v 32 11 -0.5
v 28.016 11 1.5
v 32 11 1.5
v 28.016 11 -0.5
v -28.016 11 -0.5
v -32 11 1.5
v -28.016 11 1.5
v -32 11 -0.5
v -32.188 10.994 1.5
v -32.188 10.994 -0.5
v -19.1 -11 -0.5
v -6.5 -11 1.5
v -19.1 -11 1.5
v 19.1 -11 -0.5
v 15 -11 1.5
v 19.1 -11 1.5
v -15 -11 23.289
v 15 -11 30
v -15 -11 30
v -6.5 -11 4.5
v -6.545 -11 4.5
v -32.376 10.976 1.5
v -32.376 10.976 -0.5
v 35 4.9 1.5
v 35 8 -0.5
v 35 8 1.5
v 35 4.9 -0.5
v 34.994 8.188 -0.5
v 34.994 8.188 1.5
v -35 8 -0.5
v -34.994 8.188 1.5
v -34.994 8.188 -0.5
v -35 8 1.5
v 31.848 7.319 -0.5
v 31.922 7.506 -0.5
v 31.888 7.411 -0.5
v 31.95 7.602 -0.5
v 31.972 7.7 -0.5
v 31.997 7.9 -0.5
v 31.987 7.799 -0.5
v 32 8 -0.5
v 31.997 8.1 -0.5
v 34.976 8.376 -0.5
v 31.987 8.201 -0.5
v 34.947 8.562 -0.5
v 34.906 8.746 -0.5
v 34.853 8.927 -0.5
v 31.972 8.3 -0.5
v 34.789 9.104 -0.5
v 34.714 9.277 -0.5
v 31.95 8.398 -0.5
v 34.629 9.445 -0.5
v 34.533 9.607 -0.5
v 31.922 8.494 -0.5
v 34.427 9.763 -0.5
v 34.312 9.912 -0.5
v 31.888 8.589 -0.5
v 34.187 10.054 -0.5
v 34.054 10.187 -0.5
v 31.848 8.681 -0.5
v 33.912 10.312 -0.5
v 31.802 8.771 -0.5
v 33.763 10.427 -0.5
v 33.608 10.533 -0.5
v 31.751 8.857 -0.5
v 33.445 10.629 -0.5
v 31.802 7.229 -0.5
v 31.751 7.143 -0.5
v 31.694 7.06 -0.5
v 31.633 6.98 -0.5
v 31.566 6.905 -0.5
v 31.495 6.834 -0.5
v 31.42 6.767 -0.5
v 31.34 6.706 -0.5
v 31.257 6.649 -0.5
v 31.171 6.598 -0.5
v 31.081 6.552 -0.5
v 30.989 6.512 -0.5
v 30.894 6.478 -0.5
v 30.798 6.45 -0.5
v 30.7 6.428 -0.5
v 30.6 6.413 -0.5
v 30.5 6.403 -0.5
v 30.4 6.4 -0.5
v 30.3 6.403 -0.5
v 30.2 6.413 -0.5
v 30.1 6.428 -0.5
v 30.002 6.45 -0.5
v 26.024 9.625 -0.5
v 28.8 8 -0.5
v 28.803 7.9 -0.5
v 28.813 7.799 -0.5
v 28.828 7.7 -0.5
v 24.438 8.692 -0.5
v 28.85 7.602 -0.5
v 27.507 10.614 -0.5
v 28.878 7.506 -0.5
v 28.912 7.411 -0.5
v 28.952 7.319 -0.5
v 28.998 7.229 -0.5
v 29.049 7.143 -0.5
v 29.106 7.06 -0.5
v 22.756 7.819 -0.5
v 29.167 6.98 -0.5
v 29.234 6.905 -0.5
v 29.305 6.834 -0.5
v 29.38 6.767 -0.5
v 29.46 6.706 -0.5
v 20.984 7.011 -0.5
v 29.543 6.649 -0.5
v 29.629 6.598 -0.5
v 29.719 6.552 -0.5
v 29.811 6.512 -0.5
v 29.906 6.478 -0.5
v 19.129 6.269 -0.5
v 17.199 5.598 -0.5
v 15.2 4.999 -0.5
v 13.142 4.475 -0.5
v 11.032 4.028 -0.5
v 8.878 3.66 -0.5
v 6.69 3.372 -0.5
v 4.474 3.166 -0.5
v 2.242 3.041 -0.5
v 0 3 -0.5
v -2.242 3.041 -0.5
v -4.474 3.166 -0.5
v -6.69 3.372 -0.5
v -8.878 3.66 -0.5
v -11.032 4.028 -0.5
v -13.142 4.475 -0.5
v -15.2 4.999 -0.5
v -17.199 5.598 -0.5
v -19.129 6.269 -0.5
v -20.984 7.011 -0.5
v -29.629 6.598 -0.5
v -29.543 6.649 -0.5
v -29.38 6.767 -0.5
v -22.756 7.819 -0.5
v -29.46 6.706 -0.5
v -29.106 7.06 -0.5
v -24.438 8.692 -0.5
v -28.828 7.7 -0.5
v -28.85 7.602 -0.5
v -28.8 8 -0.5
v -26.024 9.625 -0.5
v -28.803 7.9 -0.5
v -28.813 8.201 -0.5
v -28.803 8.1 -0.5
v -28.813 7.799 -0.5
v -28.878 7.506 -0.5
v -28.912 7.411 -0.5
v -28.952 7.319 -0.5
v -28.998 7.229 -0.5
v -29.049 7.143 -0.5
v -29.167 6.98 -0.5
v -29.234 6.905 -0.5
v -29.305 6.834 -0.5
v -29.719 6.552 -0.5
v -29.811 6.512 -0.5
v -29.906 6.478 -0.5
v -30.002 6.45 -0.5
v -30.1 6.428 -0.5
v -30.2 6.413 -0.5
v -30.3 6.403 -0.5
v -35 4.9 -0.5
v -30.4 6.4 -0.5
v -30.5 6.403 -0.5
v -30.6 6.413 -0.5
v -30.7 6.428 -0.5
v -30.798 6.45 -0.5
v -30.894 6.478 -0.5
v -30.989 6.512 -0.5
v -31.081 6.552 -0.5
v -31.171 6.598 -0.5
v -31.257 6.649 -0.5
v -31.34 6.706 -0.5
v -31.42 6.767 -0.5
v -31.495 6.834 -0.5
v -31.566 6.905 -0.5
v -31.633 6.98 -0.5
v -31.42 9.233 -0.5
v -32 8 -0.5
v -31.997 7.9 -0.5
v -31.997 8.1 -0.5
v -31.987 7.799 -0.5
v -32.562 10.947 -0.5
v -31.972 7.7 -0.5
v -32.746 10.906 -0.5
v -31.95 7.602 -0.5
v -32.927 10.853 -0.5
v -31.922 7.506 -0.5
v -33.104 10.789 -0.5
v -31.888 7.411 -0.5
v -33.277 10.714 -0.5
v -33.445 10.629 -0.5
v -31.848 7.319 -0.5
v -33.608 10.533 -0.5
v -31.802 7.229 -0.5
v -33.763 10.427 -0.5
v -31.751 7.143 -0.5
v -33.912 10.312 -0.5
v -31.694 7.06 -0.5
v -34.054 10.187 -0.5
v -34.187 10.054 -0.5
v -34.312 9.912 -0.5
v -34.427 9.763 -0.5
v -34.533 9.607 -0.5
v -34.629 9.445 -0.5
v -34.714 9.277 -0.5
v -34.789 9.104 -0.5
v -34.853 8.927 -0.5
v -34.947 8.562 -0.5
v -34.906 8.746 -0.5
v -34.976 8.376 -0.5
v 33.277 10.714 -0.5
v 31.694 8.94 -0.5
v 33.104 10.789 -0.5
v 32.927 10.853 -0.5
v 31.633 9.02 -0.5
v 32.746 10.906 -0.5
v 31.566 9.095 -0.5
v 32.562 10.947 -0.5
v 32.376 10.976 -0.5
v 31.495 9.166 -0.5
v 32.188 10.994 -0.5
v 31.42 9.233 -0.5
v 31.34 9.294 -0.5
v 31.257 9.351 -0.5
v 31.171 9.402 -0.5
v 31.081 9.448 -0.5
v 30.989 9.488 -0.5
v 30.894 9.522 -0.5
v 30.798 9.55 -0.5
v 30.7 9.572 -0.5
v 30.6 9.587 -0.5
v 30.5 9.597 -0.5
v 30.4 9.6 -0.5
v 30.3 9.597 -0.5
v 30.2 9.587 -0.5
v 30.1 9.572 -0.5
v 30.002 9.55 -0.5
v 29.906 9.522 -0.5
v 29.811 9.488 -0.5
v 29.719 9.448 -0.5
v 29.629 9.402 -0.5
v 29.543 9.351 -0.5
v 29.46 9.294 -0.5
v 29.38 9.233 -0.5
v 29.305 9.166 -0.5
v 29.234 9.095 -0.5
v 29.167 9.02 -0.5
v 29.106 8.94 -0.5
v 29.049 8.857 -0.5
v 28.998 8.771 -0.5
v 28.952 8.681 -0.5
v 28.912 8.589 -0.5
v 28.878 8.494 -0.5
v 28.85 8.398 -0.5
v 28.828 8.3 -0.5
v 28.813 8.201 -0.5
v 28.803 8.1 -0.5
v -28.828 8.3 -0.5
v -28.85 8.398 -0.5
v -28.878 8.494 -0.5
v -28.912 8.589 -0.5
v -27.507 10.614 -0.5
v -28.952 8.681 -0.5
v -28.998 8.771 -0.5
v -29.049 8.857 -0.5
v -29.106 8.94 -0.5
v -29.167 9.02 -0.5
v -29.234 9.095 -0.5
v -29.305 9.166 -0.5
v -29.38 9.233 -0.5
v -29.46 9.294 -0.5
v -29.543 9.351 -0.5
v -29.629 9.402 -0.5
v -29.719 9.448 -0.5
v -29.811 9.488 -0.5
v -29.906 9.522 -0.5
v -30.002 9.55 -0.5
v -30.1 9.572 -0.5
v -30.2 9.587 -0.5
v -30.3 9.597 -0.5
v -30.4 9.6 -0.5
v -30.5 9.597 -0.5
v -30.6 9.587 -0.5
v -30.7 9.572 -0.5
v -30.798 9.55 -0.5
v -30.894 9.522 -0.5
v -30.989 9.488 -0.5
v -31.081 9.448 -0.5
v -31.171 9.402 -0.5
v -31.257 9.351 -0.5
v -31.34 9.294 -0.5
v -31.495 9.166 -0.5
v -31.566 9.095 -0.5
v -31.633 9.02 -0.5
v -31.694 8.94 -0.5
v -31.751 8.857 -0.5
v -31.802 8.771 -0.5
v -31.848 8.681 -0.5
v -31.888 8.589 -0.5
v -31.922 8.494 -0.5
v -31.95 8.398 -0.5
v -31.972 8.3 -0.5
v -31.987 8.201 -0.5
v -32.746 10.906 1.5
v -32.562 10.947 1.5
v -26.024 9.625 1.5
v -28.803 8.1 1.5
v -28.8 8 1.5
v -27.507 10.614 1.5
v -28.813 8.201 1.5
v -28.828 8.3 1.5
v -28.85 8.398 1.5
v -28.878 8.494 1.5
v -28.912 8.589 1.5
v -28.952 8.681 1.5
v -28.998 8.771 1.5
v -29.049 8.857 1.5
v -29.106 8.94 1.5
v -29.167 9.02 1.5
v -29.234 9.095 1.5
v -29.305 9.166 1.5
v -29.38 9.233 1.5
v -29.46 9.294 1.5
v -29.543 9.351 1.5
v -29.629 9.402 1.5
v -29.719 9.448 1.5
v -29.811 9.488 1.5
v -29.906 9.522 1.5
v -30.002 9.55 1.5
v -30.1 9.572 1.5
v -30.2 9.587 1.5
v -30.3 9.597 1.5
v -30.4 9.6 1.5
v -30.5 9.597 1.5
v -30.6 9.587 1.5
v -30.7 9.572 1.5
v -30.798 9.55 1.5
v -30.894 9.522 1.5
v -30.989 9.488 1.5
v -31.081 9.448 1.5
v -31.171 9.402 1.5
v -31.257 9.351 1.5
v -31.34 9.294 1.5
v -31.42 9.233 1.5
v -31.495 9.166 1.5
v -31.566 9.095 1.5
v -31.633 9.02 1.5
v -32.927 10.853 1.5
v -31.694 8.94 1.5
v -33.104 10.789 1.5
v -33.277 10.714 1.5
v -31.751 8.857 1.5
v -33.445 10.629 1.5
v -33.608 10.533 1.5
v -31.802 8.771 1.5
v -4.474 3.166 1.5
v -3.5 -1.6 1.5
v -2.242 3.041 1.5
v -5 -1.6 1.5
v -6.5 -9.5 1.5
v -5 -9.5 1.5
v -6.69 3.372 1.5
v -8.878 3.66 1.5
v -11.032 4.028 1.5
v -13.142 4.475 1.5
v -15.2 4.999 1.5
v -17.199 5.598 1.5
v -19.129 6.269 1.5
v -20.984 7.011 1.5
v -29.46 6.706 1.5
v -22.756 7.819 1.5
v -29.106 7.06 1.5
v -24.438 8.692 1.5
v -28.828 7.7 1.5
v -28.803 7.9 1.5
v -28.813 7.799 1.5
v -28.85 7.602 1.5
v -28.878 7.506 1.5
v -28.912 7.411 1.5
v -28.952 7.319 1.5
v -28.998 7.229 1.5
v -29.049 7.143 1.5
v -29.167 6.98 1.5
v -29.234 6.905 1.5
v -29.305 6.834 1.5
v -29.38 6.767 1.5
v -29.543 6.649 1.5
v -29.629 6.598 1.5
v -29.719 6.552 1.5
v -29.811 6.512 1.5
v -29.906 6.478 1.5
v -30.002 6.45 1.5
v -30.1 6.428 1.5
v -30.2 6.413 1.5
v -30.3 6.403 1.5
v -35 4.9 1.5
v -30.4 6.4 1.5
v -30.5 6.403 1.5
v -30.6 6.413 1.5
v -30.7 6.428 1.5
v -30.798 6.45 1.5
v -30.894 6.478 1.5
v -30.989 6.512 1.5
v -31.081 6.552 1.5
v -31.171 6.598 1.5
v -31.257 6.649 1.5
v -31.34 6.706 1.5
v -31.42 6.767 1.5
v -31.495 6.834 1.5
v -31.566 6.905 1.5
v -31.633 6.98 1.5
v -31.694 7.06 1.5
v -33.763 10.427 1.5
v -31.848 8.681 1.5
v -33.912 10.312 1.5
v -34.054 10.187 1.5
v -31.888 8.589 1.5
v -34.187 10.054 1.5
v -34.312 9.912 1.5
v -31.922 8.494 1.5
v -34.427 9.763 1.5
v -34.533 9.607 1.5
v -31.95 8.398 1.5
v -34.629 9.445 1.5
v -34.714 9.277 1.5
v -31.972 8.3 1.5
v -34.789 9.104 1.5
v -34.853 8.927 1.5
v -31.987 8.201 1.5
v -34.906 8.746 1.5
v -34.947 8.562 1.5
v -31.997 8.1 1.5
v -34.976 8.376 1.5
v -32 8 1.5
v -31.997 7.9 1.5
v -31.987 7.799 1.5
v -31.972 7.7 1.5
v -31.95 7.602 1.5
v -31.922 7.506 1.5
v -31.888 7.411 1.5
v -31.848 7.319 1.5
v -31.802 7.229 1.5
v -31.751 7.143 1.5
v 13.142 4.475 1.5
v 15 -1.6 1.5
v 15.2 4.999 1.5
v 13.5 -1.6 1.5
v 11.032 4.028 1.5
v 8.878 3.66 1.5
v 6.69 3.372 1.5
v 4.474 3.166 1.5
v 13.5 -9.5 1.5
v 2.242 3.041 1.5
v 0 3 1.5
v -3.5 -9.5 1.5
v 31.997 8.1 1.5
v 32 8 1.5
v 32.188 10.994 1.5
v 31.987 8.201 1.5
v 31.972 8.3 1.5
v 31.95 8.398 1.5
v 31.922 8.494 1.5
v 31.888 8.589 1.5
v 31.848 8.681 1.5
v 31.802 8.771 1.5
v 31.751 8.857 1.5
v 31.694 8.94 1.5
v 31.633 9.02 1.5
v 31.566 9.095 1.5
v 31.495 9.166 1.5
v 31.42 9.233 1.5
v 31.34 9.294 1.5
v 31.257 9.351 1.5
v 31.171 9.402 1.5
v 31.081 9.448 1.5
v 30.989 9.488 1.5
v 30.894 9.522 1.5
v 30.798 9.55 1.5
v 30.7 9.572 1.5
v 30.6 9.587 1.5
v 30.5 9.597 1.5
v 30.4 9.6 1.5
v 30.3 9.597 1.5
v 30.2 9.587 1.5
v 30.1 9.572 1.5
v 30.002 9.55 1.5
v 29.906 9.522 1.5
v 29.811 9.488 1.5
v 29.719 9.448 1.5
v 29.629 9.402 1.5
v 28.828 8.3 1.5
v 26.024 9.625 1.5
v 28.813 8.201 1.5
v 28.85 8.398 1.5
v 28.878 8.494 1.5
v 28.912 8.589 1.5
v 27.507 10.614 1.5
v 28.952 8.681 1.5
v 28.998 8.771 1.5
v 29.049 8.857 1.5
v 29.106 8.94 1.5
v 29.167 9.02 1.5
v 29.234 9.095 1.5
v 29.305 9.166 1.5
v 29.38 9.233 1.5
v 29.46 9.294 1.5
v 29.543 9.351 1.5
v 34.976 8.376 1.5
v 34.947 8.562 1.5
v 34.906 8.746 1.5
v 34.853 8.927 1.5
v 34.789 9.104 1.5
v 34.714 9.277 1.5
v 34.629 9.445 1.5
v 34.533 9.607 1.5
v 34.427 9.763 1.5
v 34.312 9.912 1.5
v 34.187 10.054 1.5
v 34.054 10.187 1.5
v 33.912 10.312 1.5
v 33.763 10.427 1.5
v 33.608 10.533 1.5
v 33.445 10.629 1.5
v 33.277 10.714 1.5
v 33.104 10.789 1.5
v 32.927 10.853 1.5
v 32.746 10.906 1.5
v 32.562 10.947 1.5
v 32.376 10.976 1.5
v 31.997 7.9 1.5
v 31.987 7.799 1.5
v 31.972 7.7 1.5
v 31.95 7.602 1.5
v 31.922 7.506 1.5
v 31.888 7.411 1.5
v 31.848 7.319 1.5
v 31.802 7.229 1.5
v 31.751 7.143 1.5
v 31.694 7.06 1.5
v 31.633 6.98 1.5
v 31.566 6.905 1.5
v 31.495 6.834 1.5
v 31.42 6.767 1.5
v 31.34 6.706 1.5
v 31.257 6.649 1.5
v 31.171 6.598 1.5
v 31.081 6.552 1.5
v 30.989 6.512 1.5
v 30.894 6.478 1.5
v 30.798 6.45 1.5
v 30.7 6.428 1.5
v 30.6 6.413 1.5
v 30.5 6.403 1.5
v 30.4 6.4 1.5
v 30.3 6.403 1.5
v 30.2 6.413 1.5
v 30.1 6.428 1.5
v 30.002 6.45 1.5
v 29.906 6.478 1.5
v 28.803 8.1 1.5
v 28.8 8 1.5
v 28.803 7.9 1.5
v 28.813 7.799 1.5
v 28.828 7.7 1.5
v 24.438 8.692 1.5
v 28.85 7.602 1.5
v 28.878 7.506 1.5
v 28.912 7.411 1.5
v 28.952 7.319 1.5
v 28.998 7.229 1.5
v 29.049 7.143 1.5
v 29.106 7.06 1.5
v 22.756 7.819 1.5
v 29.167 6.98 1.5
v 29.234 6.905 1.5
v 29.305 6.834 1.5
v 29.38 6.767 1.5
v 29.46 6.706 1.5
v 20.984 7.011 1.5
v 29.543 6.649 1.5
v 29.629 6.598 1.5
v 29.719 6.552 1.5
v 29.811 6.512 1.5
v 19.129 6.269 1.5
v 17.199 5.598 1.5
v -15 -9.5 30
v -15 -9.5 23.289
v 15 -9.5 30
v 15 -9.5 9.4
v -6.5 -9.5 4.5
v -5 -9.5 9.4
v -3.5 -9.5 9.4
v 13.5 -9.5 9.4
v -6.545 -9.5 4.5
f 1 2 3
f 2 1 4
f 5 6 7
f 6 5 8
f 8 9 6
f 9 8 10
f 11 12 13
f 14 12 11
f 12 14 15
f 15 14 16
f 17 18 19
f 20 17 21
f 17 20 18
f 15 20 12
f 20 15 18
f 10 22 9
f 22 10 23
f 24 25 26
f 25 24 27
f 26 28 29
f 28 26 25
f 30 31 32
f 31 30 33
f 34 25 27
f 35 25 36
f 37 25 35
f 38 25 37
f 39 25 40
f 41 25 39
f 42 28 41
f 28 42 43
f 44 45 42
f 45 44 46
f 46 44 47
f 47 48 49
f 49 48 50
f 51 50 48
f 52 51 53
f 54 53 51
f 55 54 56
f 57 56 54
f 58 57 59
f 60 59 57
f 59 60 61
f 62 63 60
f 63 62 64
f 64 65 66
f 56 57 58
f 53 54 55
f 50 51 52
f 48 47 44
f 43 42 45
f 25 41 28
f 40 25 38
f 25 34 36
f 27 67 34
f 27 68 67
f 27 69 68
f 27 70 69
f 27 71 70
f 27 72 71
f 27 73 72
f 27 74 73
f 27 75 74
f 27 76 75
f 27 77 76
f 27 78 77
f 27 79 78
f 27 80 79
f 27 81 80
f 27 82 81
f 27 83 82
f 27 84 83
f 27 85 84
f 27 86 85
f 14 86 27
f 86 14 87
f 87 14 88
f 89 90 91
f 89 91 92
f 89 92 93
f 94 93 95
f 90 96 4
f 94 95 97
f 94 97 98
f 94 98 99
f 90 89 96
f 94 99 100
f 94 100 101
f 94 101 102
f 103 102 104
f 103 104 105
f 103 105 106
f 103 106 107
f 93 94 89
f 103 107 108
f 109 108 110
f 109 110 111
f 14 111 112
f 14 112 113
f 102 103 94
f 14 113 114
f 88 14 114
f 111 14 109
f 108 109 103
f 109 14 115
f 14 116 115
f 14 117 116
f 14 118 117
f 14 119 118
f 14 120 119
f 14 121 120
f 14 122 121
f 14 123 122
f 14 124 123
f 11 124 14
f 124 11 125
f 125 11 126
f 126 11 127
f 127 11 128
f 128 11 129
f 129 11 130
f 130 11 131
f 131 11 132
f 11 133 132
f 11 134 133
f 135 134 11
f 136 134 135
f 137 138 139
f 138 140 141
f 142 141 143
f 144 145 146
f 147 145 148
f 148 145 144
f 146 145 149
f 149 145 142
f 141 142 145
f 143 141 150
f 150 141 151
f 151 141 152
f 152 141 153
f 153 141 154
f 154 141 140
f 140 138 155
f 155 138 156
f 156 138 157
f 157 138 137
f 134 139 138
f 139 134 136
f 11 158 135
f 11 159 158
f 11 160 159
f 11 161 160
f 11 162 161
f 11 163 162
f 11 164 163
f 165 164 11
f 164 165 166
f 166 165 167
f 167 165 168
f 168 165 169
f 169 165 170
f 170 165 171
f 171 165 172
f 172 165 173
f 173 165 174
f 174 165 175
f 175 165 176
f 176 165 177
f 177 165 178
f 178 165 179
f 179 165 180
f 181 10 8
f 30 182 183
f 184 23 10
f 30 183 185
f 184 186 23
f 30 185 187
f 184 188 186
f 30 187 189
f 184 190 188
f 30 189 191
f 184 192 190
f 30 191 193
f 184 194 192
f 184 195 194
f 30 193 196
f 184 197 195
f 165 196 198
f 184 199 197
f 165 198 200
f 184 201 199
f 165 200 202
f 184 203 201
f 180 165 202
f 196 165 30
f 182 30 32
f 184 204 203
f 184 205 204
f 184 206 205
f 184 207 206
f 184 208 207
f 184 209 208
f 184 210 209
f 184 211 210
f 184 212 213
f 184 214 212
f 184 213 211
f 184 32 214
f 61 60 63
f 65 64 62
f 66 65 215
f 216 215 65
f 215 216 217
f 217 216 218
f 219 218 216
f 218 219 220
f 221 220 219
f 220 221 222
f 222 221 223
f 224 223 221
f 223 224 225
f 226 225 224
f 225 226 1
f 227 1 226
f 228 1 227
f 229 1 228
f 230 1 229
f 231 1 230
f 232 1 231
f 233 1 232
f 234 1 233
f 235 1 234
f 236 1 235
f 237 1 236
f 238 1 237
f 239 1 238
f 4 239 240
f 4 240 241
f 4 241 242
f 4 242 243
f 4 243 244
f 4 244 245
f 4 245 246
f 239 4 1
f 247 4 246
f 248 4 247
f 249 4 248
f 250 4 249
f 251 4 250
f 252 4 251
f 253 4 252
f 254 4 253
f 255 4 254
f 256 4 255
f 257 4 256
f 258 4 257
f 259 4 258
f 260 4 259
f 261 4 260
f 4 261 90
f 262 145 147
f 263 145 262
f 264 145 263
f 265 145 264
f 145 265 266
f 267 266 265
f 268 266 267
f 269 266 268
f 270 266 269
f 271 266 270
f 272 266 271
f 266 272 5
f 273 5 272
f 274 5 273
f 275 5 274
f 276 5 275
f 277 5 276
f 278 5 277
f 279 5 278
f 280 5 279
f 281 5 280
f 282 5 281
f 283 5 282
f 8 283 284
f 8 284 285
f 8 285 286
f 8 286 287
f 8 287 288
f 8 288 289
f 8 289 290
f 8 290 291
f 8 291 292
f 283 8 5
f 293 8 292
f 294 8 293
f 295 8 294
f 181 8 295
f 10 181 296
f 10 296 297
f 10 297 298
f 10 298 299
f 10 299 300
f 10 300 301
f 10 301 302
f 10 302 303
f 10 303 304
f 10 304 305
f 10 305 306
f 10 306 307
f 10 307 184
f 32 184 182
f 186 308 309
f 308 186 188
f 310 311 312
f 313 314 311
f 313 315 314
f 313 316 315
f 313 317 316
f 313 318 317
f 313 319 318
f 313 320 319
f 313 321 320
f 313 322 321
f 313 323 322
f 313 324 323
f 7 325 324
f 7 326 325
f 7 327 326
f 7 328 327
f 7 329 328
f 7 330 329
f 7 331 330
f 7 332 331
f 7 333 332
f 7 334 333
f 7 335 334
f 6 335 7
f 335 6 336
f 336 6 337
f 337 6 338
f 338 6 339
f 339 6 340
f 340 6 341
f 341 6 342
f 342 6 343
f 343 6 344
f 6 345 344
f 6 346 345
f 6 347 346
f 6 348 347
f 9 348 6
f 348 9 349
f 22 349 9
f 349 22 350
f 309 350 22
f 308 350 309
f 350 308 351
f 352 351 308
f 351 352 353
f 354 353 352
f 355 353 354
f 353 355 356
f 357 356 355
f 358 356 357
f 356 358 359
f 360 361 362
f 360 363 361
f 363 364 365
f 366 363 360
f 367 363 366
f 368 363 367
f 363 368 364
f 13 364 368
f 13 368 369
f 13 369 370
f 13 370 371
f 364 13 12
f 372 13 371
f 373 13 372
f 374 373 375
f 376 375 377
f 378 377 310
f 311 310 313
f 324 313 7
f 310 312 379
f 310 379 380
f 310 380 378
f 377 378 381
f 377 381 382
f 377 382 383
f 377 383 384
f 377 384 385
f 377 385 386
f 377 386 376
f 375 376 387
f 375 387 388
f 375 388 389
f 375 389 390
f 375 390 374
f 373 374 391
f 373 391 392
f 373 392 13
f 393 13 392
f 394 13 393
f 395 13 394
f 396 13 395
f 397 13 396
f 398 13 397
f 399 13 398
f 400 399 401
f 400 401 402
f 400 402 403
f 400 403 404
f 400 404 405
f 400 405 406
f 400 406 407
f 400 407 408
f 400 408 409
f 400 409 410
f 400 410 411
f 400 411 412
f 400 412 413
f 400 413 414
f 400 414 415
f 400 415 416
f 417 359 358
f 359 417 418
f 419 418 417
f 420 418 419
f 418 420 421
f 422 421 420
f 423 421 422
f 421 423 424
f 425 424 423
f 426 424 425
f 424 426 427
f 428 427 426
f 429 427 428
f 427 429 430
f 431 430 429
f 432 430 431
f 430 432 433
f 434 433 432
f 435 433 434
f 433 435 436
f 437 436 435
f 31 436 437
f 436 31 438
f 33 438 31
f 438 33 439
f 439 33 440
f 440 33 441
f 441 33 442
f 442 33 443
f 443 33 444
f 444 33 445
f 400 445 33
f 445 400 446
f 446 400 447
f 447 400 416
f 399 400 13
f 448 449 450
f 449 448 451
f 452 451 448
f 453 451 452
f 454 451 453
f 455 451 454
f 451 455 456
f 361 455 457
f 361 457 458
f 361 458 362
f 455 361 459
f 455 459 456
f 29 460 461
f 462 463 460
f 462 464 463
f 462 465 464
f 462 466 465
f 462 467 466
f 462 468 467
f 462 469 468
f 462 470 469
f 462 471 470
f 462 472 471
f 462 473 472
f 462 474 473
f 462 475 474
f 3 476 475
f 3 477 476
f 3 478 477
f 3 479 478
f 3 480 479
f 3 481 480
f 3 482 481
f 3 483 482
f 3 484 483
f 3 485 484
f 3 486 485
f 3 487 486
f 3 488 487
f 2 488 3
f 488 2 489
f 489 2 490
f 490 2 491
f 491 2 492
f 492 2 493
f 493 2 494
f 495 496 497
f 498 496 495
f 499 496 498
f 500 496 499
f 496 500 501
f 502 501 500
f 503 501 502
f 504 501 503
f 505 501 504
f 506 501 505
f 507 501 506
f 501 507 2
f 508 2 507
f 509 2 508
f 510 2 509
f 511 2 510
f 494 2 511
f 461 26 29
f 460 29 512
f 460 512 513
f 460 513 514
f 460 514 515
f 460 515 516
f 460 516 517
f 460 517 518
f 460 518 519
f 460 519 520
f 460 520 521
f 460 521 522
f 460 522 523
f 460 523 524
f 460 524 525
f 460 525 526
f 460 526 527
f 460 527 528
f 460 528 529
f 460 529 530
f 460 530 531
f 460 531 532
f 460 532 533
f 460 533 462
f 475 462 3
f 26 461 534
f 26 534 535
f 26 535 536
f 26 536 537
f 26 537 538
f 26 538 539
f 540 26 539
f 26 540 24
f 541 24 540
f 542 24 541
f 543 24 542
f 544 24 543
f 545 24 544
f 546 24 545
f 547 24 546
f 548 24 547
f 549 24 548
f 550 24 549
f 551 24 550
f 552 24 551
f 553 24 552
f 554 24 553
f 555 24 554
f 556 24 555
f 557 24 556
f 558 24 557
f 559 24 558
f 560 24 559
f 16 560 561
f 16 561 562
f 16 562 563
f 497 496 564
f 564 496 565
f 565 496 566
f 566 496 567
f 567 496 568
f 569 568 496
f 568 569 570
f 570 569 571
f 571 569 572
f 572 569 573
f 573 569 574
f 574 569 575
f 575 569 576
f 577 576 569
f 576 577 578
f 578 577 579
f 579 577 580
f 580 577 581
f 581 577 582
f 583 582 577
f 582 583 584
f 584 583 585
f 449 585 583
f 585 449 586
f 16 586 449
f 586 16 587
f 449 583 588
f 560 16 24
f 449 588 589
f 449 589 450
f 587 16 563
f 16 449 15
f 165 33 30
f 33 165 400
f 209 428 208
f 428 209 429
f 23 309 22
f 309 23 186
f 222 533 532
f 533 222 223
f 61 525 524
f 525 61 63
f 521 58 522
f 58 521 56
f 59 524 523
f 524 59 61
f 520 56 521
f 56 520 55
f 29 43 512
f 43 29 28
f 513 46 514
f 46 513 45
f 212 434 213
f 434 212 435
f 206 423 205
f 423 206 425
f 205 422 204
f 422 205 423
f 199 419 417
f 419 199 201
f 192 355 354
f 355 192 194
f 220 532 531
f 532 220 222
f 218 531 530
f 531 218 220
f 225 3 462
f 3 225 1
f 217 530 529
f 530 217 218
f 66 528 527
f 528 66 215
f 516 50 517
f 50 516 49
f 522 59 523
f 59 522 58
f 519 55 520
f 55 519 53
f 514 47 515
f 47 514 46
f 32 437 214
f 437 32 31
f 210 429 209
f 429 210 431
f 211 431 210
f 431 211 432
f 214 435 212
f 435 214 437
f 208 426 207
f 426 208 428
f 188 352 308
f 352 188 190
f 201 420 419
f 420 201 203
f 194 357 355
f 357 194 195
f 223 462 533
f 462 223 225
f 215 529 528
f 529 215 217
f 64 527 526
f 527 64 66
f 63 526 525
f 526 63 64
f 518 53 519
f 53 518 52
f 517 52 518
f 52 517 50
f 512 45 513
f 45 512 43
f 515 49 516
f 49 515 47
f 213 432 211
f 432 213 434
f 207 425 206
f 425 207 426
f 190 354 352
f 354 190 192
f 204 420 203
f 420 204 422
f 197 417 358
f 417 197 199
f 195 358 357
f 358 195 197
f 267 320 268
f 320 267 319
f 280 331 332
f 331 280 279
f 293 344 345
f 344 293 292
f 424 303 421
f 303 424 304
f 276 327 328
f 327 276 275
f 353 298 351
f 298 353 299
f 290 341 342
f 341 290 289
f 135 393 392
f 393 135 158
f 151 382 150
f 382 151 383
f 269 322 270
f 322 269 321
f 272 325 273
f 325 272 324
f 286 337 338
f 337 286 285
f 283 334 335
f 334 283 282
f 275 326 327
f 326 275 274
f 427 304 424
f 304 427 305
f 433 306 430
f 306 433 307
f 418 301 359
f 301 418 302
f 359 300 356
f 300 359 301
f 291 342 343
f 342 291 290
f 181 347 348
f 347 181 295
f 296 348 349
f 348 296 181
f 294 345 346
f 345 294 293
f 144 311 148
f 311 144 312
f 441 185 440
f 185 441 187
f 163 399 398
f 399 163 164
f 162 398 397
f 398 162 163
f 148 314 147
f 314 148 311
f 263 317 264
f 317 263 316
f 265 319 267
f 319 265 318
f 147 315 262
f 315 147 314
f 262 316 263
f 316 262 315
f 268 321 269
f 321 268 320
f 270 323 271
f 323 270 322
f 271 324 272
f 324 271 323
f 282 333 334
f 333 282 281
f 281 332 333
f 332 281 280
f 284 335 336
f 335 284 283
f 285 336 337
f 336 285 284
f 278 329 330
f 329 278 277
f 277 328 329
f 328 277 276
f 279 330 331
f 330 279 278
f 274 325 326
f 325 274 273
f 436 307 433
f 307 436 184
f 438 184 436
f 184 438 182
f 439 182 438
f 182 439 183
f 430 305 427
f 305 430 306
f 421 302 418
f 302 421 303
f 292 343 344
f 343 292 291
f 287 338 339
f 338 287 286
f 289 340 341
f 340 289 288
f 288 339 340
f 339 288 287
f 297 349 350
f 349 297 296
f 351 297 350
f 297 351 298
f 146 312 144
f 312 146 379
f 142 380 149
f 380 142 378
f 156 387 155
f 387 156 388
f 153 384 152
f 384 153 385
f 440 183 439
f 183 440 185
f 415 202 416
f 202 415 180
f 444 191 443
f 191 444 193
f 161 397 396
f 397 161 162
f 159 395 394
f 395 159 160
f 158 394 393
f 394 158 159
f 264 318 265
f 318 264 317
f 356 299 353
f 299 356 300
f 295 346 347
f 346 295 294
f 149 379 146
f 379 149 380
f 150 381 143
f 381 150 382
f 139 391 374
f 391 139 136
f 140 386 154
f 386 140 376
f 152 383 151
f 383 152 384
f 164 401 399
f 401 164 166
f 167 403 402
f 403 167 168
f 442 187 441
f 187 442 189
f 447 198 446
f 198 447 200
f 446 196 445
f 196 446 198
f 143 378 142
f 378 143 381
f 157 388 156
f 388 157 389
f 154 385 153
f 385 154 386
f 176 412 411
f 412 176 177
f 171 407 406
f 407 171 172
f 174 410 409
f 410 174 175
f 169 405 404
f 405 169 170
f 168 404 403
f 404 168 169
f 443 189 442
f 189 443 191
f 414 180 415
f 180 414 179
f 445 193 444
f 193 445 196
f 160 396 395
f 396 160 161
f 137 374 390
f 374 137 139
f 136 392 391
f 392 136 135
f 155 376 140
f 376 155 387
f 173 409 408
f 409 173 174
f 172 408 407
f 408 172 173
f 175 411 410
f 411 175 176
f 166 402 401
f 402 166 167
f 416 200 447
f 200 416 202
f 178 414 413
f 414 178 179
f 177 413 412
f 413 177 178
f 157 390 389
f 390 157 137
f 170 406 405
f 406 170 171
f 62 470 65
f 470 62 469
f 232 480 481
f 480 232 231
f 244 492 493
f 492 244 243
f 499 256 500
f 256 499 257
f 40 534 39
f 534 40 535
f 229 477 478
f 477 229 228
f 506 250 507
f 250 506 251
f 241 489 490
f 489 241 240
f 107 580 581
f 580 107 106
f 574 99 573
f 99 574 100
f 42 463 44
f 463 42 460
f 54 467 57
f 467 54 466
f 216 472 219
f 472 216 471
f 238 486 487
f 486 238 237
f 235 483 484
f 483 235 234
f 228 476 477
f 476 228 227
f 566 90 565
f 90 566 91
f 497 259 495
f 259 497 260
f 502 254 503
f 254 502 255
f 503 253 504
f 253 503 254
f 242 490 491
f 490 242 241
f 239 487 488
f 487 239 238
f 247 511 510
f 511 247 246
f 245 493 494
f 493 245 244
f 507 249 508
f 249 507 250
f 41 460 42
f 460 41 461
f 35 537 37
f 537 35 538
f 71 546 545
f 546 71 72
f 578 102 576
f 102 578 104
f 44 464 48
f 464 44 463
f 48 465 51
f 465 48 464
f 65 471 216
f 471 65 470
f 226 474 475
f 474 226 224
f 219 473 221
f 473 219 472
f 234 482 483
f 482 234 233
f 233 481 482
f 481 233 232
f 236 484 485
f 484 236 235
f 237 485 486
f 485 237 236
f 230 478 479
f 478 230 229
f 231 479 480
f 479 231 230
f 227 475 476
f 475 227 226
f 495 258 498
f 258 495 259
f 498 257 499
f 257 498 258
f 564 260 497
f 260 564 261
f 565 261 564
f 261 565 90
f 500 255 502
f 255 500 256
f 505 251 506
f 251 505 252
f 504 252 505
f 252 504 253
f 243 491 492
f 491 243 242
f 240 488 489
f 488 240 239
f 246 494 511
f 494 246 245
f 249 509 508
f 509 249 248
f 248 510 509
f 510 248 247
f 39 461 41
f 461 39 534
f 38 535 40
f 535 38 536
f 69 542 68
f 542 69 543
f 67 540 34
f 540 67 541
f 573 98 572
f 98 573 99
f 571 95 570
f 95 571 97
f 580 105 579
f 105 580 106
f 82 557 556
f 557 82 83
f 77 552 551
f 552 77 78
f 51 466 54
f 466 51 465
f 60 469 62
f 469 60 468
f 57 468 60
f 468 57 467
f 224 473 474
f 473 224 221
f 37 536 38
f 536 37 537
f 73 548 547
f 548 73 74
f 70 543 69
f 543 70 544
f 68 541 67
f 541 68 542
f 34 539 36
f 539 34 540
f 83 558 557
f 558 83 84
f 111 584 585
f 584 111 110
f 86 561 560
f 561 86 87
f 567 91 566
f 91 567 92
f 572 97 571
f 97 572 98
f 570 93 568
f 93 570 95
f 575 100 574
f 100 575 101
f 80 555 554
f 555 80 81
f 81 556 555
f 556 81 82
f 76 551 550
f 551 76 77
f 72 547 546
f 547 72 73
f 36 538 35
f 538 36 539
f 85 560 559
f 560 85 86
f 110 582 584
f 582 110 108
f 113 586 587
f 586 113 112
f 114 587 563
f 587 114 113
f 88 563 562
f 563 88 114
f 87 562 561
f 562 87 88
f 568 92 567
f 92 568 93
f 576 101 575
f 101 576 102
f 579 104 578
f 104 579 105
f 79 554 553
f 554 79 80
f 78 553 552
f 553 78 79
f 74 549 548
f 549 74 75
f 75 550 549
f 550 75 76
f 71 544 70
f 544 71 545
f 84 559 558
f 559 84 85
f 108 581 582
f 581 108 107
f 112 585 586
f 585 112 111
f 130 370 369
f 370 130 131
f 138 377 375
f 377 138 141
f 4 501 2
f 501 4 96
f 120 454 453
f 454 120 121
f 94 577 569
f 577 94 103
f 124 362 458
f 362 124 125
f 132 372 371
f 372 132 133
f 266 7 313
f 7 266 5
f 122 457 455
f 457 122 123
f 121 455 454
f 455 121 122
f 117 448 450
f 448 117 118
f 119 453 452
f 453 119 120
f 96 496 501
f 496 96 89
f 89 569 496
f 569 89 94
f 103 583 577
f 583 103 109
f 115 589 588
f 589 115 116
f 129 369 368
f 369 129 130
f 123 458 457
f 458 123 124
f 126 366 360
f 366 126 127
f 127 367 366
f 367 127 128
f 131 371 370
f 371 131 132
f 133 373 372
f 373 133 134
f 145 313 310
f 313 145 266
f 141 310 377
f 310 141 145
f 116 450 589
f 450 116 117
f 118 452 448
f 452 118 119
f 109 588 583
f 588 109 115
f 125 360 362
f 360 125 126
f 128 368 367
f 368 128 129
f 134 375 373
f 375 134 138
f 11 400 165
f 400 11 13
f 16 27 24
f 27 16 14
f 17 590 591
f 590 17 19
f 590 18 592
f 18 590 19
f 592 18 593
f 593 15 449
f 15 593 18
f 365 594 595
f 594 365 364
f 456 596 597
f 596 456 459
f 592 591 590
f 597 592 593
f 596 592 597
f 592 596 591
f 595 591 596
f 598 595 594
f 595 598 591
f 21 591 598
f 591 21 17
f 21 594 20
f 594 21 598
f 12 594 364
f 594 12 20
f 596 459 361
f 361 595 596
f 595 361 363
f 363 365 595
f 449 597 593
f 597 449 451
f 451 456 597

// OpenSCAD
fn = 100;

module triangle(o_len, a_len, depth)
{
    linear_extrude(height=depth)
    {
        polygon(points=[[0,0],[a_len,0],[0,o_len]], paths=[[0,1,2]]);
    }
}

//the Board

difference()
{
    minkowski()
    {
        cube([64,16,1.],true);
        cylinder(r=3,h=1,$fn=fn);
    }
   
    //screw hole
	translate([-(32-1.6),8,0])
	{
		cylinder(h=8,d=3.2,center=true,$fn=fn);
	}

    //screw hole
	translate([(32-1.6),8,0])
	{
		cylinder(h=8,d=3.2,center=true,$fn=fn);
	}
    
    //big arc cutout
    translate([0,24,0])
	{
        scale([1.7,1,1])
        {
		cylinder(h=8,d=42,center=true,$fn=fn);
        }
	}
    
    //front corner cut off
    translate([-37,-11.1,-3])
	{
		triangle(18,18,8);
	}
    
    //front corner cut off
    translate([37,-11.1,3])
	{
        rotate([0,180,0])
        {
            triangle(18,18,8);
        }
	}
}


//The camera mount
translate([0,-10.25,15])
{
    rotate([0,0,0])
    {
        difference()
        {
            cube([30,1.5,30], true);
            translate([-15.5,7,-10.6])
            {
                rotate([90,0,0])
                {
                triangle(20,9,15);
                }
            }
            translate([-11,0,-13])
            {
                cube([9,30,5],true);
            }
        }
        
    }
}


//second support triangle
translate([-3.5,-10.1,0])
{
	rotate([0,-90,0])
	{
		triangle(10,10,1.5);
	}
}

//second support triangle
translate([15,-10.1,0])
{
	rotate([0,-90,0])
	{
		triangle(10,10,1.5);
	}
}
